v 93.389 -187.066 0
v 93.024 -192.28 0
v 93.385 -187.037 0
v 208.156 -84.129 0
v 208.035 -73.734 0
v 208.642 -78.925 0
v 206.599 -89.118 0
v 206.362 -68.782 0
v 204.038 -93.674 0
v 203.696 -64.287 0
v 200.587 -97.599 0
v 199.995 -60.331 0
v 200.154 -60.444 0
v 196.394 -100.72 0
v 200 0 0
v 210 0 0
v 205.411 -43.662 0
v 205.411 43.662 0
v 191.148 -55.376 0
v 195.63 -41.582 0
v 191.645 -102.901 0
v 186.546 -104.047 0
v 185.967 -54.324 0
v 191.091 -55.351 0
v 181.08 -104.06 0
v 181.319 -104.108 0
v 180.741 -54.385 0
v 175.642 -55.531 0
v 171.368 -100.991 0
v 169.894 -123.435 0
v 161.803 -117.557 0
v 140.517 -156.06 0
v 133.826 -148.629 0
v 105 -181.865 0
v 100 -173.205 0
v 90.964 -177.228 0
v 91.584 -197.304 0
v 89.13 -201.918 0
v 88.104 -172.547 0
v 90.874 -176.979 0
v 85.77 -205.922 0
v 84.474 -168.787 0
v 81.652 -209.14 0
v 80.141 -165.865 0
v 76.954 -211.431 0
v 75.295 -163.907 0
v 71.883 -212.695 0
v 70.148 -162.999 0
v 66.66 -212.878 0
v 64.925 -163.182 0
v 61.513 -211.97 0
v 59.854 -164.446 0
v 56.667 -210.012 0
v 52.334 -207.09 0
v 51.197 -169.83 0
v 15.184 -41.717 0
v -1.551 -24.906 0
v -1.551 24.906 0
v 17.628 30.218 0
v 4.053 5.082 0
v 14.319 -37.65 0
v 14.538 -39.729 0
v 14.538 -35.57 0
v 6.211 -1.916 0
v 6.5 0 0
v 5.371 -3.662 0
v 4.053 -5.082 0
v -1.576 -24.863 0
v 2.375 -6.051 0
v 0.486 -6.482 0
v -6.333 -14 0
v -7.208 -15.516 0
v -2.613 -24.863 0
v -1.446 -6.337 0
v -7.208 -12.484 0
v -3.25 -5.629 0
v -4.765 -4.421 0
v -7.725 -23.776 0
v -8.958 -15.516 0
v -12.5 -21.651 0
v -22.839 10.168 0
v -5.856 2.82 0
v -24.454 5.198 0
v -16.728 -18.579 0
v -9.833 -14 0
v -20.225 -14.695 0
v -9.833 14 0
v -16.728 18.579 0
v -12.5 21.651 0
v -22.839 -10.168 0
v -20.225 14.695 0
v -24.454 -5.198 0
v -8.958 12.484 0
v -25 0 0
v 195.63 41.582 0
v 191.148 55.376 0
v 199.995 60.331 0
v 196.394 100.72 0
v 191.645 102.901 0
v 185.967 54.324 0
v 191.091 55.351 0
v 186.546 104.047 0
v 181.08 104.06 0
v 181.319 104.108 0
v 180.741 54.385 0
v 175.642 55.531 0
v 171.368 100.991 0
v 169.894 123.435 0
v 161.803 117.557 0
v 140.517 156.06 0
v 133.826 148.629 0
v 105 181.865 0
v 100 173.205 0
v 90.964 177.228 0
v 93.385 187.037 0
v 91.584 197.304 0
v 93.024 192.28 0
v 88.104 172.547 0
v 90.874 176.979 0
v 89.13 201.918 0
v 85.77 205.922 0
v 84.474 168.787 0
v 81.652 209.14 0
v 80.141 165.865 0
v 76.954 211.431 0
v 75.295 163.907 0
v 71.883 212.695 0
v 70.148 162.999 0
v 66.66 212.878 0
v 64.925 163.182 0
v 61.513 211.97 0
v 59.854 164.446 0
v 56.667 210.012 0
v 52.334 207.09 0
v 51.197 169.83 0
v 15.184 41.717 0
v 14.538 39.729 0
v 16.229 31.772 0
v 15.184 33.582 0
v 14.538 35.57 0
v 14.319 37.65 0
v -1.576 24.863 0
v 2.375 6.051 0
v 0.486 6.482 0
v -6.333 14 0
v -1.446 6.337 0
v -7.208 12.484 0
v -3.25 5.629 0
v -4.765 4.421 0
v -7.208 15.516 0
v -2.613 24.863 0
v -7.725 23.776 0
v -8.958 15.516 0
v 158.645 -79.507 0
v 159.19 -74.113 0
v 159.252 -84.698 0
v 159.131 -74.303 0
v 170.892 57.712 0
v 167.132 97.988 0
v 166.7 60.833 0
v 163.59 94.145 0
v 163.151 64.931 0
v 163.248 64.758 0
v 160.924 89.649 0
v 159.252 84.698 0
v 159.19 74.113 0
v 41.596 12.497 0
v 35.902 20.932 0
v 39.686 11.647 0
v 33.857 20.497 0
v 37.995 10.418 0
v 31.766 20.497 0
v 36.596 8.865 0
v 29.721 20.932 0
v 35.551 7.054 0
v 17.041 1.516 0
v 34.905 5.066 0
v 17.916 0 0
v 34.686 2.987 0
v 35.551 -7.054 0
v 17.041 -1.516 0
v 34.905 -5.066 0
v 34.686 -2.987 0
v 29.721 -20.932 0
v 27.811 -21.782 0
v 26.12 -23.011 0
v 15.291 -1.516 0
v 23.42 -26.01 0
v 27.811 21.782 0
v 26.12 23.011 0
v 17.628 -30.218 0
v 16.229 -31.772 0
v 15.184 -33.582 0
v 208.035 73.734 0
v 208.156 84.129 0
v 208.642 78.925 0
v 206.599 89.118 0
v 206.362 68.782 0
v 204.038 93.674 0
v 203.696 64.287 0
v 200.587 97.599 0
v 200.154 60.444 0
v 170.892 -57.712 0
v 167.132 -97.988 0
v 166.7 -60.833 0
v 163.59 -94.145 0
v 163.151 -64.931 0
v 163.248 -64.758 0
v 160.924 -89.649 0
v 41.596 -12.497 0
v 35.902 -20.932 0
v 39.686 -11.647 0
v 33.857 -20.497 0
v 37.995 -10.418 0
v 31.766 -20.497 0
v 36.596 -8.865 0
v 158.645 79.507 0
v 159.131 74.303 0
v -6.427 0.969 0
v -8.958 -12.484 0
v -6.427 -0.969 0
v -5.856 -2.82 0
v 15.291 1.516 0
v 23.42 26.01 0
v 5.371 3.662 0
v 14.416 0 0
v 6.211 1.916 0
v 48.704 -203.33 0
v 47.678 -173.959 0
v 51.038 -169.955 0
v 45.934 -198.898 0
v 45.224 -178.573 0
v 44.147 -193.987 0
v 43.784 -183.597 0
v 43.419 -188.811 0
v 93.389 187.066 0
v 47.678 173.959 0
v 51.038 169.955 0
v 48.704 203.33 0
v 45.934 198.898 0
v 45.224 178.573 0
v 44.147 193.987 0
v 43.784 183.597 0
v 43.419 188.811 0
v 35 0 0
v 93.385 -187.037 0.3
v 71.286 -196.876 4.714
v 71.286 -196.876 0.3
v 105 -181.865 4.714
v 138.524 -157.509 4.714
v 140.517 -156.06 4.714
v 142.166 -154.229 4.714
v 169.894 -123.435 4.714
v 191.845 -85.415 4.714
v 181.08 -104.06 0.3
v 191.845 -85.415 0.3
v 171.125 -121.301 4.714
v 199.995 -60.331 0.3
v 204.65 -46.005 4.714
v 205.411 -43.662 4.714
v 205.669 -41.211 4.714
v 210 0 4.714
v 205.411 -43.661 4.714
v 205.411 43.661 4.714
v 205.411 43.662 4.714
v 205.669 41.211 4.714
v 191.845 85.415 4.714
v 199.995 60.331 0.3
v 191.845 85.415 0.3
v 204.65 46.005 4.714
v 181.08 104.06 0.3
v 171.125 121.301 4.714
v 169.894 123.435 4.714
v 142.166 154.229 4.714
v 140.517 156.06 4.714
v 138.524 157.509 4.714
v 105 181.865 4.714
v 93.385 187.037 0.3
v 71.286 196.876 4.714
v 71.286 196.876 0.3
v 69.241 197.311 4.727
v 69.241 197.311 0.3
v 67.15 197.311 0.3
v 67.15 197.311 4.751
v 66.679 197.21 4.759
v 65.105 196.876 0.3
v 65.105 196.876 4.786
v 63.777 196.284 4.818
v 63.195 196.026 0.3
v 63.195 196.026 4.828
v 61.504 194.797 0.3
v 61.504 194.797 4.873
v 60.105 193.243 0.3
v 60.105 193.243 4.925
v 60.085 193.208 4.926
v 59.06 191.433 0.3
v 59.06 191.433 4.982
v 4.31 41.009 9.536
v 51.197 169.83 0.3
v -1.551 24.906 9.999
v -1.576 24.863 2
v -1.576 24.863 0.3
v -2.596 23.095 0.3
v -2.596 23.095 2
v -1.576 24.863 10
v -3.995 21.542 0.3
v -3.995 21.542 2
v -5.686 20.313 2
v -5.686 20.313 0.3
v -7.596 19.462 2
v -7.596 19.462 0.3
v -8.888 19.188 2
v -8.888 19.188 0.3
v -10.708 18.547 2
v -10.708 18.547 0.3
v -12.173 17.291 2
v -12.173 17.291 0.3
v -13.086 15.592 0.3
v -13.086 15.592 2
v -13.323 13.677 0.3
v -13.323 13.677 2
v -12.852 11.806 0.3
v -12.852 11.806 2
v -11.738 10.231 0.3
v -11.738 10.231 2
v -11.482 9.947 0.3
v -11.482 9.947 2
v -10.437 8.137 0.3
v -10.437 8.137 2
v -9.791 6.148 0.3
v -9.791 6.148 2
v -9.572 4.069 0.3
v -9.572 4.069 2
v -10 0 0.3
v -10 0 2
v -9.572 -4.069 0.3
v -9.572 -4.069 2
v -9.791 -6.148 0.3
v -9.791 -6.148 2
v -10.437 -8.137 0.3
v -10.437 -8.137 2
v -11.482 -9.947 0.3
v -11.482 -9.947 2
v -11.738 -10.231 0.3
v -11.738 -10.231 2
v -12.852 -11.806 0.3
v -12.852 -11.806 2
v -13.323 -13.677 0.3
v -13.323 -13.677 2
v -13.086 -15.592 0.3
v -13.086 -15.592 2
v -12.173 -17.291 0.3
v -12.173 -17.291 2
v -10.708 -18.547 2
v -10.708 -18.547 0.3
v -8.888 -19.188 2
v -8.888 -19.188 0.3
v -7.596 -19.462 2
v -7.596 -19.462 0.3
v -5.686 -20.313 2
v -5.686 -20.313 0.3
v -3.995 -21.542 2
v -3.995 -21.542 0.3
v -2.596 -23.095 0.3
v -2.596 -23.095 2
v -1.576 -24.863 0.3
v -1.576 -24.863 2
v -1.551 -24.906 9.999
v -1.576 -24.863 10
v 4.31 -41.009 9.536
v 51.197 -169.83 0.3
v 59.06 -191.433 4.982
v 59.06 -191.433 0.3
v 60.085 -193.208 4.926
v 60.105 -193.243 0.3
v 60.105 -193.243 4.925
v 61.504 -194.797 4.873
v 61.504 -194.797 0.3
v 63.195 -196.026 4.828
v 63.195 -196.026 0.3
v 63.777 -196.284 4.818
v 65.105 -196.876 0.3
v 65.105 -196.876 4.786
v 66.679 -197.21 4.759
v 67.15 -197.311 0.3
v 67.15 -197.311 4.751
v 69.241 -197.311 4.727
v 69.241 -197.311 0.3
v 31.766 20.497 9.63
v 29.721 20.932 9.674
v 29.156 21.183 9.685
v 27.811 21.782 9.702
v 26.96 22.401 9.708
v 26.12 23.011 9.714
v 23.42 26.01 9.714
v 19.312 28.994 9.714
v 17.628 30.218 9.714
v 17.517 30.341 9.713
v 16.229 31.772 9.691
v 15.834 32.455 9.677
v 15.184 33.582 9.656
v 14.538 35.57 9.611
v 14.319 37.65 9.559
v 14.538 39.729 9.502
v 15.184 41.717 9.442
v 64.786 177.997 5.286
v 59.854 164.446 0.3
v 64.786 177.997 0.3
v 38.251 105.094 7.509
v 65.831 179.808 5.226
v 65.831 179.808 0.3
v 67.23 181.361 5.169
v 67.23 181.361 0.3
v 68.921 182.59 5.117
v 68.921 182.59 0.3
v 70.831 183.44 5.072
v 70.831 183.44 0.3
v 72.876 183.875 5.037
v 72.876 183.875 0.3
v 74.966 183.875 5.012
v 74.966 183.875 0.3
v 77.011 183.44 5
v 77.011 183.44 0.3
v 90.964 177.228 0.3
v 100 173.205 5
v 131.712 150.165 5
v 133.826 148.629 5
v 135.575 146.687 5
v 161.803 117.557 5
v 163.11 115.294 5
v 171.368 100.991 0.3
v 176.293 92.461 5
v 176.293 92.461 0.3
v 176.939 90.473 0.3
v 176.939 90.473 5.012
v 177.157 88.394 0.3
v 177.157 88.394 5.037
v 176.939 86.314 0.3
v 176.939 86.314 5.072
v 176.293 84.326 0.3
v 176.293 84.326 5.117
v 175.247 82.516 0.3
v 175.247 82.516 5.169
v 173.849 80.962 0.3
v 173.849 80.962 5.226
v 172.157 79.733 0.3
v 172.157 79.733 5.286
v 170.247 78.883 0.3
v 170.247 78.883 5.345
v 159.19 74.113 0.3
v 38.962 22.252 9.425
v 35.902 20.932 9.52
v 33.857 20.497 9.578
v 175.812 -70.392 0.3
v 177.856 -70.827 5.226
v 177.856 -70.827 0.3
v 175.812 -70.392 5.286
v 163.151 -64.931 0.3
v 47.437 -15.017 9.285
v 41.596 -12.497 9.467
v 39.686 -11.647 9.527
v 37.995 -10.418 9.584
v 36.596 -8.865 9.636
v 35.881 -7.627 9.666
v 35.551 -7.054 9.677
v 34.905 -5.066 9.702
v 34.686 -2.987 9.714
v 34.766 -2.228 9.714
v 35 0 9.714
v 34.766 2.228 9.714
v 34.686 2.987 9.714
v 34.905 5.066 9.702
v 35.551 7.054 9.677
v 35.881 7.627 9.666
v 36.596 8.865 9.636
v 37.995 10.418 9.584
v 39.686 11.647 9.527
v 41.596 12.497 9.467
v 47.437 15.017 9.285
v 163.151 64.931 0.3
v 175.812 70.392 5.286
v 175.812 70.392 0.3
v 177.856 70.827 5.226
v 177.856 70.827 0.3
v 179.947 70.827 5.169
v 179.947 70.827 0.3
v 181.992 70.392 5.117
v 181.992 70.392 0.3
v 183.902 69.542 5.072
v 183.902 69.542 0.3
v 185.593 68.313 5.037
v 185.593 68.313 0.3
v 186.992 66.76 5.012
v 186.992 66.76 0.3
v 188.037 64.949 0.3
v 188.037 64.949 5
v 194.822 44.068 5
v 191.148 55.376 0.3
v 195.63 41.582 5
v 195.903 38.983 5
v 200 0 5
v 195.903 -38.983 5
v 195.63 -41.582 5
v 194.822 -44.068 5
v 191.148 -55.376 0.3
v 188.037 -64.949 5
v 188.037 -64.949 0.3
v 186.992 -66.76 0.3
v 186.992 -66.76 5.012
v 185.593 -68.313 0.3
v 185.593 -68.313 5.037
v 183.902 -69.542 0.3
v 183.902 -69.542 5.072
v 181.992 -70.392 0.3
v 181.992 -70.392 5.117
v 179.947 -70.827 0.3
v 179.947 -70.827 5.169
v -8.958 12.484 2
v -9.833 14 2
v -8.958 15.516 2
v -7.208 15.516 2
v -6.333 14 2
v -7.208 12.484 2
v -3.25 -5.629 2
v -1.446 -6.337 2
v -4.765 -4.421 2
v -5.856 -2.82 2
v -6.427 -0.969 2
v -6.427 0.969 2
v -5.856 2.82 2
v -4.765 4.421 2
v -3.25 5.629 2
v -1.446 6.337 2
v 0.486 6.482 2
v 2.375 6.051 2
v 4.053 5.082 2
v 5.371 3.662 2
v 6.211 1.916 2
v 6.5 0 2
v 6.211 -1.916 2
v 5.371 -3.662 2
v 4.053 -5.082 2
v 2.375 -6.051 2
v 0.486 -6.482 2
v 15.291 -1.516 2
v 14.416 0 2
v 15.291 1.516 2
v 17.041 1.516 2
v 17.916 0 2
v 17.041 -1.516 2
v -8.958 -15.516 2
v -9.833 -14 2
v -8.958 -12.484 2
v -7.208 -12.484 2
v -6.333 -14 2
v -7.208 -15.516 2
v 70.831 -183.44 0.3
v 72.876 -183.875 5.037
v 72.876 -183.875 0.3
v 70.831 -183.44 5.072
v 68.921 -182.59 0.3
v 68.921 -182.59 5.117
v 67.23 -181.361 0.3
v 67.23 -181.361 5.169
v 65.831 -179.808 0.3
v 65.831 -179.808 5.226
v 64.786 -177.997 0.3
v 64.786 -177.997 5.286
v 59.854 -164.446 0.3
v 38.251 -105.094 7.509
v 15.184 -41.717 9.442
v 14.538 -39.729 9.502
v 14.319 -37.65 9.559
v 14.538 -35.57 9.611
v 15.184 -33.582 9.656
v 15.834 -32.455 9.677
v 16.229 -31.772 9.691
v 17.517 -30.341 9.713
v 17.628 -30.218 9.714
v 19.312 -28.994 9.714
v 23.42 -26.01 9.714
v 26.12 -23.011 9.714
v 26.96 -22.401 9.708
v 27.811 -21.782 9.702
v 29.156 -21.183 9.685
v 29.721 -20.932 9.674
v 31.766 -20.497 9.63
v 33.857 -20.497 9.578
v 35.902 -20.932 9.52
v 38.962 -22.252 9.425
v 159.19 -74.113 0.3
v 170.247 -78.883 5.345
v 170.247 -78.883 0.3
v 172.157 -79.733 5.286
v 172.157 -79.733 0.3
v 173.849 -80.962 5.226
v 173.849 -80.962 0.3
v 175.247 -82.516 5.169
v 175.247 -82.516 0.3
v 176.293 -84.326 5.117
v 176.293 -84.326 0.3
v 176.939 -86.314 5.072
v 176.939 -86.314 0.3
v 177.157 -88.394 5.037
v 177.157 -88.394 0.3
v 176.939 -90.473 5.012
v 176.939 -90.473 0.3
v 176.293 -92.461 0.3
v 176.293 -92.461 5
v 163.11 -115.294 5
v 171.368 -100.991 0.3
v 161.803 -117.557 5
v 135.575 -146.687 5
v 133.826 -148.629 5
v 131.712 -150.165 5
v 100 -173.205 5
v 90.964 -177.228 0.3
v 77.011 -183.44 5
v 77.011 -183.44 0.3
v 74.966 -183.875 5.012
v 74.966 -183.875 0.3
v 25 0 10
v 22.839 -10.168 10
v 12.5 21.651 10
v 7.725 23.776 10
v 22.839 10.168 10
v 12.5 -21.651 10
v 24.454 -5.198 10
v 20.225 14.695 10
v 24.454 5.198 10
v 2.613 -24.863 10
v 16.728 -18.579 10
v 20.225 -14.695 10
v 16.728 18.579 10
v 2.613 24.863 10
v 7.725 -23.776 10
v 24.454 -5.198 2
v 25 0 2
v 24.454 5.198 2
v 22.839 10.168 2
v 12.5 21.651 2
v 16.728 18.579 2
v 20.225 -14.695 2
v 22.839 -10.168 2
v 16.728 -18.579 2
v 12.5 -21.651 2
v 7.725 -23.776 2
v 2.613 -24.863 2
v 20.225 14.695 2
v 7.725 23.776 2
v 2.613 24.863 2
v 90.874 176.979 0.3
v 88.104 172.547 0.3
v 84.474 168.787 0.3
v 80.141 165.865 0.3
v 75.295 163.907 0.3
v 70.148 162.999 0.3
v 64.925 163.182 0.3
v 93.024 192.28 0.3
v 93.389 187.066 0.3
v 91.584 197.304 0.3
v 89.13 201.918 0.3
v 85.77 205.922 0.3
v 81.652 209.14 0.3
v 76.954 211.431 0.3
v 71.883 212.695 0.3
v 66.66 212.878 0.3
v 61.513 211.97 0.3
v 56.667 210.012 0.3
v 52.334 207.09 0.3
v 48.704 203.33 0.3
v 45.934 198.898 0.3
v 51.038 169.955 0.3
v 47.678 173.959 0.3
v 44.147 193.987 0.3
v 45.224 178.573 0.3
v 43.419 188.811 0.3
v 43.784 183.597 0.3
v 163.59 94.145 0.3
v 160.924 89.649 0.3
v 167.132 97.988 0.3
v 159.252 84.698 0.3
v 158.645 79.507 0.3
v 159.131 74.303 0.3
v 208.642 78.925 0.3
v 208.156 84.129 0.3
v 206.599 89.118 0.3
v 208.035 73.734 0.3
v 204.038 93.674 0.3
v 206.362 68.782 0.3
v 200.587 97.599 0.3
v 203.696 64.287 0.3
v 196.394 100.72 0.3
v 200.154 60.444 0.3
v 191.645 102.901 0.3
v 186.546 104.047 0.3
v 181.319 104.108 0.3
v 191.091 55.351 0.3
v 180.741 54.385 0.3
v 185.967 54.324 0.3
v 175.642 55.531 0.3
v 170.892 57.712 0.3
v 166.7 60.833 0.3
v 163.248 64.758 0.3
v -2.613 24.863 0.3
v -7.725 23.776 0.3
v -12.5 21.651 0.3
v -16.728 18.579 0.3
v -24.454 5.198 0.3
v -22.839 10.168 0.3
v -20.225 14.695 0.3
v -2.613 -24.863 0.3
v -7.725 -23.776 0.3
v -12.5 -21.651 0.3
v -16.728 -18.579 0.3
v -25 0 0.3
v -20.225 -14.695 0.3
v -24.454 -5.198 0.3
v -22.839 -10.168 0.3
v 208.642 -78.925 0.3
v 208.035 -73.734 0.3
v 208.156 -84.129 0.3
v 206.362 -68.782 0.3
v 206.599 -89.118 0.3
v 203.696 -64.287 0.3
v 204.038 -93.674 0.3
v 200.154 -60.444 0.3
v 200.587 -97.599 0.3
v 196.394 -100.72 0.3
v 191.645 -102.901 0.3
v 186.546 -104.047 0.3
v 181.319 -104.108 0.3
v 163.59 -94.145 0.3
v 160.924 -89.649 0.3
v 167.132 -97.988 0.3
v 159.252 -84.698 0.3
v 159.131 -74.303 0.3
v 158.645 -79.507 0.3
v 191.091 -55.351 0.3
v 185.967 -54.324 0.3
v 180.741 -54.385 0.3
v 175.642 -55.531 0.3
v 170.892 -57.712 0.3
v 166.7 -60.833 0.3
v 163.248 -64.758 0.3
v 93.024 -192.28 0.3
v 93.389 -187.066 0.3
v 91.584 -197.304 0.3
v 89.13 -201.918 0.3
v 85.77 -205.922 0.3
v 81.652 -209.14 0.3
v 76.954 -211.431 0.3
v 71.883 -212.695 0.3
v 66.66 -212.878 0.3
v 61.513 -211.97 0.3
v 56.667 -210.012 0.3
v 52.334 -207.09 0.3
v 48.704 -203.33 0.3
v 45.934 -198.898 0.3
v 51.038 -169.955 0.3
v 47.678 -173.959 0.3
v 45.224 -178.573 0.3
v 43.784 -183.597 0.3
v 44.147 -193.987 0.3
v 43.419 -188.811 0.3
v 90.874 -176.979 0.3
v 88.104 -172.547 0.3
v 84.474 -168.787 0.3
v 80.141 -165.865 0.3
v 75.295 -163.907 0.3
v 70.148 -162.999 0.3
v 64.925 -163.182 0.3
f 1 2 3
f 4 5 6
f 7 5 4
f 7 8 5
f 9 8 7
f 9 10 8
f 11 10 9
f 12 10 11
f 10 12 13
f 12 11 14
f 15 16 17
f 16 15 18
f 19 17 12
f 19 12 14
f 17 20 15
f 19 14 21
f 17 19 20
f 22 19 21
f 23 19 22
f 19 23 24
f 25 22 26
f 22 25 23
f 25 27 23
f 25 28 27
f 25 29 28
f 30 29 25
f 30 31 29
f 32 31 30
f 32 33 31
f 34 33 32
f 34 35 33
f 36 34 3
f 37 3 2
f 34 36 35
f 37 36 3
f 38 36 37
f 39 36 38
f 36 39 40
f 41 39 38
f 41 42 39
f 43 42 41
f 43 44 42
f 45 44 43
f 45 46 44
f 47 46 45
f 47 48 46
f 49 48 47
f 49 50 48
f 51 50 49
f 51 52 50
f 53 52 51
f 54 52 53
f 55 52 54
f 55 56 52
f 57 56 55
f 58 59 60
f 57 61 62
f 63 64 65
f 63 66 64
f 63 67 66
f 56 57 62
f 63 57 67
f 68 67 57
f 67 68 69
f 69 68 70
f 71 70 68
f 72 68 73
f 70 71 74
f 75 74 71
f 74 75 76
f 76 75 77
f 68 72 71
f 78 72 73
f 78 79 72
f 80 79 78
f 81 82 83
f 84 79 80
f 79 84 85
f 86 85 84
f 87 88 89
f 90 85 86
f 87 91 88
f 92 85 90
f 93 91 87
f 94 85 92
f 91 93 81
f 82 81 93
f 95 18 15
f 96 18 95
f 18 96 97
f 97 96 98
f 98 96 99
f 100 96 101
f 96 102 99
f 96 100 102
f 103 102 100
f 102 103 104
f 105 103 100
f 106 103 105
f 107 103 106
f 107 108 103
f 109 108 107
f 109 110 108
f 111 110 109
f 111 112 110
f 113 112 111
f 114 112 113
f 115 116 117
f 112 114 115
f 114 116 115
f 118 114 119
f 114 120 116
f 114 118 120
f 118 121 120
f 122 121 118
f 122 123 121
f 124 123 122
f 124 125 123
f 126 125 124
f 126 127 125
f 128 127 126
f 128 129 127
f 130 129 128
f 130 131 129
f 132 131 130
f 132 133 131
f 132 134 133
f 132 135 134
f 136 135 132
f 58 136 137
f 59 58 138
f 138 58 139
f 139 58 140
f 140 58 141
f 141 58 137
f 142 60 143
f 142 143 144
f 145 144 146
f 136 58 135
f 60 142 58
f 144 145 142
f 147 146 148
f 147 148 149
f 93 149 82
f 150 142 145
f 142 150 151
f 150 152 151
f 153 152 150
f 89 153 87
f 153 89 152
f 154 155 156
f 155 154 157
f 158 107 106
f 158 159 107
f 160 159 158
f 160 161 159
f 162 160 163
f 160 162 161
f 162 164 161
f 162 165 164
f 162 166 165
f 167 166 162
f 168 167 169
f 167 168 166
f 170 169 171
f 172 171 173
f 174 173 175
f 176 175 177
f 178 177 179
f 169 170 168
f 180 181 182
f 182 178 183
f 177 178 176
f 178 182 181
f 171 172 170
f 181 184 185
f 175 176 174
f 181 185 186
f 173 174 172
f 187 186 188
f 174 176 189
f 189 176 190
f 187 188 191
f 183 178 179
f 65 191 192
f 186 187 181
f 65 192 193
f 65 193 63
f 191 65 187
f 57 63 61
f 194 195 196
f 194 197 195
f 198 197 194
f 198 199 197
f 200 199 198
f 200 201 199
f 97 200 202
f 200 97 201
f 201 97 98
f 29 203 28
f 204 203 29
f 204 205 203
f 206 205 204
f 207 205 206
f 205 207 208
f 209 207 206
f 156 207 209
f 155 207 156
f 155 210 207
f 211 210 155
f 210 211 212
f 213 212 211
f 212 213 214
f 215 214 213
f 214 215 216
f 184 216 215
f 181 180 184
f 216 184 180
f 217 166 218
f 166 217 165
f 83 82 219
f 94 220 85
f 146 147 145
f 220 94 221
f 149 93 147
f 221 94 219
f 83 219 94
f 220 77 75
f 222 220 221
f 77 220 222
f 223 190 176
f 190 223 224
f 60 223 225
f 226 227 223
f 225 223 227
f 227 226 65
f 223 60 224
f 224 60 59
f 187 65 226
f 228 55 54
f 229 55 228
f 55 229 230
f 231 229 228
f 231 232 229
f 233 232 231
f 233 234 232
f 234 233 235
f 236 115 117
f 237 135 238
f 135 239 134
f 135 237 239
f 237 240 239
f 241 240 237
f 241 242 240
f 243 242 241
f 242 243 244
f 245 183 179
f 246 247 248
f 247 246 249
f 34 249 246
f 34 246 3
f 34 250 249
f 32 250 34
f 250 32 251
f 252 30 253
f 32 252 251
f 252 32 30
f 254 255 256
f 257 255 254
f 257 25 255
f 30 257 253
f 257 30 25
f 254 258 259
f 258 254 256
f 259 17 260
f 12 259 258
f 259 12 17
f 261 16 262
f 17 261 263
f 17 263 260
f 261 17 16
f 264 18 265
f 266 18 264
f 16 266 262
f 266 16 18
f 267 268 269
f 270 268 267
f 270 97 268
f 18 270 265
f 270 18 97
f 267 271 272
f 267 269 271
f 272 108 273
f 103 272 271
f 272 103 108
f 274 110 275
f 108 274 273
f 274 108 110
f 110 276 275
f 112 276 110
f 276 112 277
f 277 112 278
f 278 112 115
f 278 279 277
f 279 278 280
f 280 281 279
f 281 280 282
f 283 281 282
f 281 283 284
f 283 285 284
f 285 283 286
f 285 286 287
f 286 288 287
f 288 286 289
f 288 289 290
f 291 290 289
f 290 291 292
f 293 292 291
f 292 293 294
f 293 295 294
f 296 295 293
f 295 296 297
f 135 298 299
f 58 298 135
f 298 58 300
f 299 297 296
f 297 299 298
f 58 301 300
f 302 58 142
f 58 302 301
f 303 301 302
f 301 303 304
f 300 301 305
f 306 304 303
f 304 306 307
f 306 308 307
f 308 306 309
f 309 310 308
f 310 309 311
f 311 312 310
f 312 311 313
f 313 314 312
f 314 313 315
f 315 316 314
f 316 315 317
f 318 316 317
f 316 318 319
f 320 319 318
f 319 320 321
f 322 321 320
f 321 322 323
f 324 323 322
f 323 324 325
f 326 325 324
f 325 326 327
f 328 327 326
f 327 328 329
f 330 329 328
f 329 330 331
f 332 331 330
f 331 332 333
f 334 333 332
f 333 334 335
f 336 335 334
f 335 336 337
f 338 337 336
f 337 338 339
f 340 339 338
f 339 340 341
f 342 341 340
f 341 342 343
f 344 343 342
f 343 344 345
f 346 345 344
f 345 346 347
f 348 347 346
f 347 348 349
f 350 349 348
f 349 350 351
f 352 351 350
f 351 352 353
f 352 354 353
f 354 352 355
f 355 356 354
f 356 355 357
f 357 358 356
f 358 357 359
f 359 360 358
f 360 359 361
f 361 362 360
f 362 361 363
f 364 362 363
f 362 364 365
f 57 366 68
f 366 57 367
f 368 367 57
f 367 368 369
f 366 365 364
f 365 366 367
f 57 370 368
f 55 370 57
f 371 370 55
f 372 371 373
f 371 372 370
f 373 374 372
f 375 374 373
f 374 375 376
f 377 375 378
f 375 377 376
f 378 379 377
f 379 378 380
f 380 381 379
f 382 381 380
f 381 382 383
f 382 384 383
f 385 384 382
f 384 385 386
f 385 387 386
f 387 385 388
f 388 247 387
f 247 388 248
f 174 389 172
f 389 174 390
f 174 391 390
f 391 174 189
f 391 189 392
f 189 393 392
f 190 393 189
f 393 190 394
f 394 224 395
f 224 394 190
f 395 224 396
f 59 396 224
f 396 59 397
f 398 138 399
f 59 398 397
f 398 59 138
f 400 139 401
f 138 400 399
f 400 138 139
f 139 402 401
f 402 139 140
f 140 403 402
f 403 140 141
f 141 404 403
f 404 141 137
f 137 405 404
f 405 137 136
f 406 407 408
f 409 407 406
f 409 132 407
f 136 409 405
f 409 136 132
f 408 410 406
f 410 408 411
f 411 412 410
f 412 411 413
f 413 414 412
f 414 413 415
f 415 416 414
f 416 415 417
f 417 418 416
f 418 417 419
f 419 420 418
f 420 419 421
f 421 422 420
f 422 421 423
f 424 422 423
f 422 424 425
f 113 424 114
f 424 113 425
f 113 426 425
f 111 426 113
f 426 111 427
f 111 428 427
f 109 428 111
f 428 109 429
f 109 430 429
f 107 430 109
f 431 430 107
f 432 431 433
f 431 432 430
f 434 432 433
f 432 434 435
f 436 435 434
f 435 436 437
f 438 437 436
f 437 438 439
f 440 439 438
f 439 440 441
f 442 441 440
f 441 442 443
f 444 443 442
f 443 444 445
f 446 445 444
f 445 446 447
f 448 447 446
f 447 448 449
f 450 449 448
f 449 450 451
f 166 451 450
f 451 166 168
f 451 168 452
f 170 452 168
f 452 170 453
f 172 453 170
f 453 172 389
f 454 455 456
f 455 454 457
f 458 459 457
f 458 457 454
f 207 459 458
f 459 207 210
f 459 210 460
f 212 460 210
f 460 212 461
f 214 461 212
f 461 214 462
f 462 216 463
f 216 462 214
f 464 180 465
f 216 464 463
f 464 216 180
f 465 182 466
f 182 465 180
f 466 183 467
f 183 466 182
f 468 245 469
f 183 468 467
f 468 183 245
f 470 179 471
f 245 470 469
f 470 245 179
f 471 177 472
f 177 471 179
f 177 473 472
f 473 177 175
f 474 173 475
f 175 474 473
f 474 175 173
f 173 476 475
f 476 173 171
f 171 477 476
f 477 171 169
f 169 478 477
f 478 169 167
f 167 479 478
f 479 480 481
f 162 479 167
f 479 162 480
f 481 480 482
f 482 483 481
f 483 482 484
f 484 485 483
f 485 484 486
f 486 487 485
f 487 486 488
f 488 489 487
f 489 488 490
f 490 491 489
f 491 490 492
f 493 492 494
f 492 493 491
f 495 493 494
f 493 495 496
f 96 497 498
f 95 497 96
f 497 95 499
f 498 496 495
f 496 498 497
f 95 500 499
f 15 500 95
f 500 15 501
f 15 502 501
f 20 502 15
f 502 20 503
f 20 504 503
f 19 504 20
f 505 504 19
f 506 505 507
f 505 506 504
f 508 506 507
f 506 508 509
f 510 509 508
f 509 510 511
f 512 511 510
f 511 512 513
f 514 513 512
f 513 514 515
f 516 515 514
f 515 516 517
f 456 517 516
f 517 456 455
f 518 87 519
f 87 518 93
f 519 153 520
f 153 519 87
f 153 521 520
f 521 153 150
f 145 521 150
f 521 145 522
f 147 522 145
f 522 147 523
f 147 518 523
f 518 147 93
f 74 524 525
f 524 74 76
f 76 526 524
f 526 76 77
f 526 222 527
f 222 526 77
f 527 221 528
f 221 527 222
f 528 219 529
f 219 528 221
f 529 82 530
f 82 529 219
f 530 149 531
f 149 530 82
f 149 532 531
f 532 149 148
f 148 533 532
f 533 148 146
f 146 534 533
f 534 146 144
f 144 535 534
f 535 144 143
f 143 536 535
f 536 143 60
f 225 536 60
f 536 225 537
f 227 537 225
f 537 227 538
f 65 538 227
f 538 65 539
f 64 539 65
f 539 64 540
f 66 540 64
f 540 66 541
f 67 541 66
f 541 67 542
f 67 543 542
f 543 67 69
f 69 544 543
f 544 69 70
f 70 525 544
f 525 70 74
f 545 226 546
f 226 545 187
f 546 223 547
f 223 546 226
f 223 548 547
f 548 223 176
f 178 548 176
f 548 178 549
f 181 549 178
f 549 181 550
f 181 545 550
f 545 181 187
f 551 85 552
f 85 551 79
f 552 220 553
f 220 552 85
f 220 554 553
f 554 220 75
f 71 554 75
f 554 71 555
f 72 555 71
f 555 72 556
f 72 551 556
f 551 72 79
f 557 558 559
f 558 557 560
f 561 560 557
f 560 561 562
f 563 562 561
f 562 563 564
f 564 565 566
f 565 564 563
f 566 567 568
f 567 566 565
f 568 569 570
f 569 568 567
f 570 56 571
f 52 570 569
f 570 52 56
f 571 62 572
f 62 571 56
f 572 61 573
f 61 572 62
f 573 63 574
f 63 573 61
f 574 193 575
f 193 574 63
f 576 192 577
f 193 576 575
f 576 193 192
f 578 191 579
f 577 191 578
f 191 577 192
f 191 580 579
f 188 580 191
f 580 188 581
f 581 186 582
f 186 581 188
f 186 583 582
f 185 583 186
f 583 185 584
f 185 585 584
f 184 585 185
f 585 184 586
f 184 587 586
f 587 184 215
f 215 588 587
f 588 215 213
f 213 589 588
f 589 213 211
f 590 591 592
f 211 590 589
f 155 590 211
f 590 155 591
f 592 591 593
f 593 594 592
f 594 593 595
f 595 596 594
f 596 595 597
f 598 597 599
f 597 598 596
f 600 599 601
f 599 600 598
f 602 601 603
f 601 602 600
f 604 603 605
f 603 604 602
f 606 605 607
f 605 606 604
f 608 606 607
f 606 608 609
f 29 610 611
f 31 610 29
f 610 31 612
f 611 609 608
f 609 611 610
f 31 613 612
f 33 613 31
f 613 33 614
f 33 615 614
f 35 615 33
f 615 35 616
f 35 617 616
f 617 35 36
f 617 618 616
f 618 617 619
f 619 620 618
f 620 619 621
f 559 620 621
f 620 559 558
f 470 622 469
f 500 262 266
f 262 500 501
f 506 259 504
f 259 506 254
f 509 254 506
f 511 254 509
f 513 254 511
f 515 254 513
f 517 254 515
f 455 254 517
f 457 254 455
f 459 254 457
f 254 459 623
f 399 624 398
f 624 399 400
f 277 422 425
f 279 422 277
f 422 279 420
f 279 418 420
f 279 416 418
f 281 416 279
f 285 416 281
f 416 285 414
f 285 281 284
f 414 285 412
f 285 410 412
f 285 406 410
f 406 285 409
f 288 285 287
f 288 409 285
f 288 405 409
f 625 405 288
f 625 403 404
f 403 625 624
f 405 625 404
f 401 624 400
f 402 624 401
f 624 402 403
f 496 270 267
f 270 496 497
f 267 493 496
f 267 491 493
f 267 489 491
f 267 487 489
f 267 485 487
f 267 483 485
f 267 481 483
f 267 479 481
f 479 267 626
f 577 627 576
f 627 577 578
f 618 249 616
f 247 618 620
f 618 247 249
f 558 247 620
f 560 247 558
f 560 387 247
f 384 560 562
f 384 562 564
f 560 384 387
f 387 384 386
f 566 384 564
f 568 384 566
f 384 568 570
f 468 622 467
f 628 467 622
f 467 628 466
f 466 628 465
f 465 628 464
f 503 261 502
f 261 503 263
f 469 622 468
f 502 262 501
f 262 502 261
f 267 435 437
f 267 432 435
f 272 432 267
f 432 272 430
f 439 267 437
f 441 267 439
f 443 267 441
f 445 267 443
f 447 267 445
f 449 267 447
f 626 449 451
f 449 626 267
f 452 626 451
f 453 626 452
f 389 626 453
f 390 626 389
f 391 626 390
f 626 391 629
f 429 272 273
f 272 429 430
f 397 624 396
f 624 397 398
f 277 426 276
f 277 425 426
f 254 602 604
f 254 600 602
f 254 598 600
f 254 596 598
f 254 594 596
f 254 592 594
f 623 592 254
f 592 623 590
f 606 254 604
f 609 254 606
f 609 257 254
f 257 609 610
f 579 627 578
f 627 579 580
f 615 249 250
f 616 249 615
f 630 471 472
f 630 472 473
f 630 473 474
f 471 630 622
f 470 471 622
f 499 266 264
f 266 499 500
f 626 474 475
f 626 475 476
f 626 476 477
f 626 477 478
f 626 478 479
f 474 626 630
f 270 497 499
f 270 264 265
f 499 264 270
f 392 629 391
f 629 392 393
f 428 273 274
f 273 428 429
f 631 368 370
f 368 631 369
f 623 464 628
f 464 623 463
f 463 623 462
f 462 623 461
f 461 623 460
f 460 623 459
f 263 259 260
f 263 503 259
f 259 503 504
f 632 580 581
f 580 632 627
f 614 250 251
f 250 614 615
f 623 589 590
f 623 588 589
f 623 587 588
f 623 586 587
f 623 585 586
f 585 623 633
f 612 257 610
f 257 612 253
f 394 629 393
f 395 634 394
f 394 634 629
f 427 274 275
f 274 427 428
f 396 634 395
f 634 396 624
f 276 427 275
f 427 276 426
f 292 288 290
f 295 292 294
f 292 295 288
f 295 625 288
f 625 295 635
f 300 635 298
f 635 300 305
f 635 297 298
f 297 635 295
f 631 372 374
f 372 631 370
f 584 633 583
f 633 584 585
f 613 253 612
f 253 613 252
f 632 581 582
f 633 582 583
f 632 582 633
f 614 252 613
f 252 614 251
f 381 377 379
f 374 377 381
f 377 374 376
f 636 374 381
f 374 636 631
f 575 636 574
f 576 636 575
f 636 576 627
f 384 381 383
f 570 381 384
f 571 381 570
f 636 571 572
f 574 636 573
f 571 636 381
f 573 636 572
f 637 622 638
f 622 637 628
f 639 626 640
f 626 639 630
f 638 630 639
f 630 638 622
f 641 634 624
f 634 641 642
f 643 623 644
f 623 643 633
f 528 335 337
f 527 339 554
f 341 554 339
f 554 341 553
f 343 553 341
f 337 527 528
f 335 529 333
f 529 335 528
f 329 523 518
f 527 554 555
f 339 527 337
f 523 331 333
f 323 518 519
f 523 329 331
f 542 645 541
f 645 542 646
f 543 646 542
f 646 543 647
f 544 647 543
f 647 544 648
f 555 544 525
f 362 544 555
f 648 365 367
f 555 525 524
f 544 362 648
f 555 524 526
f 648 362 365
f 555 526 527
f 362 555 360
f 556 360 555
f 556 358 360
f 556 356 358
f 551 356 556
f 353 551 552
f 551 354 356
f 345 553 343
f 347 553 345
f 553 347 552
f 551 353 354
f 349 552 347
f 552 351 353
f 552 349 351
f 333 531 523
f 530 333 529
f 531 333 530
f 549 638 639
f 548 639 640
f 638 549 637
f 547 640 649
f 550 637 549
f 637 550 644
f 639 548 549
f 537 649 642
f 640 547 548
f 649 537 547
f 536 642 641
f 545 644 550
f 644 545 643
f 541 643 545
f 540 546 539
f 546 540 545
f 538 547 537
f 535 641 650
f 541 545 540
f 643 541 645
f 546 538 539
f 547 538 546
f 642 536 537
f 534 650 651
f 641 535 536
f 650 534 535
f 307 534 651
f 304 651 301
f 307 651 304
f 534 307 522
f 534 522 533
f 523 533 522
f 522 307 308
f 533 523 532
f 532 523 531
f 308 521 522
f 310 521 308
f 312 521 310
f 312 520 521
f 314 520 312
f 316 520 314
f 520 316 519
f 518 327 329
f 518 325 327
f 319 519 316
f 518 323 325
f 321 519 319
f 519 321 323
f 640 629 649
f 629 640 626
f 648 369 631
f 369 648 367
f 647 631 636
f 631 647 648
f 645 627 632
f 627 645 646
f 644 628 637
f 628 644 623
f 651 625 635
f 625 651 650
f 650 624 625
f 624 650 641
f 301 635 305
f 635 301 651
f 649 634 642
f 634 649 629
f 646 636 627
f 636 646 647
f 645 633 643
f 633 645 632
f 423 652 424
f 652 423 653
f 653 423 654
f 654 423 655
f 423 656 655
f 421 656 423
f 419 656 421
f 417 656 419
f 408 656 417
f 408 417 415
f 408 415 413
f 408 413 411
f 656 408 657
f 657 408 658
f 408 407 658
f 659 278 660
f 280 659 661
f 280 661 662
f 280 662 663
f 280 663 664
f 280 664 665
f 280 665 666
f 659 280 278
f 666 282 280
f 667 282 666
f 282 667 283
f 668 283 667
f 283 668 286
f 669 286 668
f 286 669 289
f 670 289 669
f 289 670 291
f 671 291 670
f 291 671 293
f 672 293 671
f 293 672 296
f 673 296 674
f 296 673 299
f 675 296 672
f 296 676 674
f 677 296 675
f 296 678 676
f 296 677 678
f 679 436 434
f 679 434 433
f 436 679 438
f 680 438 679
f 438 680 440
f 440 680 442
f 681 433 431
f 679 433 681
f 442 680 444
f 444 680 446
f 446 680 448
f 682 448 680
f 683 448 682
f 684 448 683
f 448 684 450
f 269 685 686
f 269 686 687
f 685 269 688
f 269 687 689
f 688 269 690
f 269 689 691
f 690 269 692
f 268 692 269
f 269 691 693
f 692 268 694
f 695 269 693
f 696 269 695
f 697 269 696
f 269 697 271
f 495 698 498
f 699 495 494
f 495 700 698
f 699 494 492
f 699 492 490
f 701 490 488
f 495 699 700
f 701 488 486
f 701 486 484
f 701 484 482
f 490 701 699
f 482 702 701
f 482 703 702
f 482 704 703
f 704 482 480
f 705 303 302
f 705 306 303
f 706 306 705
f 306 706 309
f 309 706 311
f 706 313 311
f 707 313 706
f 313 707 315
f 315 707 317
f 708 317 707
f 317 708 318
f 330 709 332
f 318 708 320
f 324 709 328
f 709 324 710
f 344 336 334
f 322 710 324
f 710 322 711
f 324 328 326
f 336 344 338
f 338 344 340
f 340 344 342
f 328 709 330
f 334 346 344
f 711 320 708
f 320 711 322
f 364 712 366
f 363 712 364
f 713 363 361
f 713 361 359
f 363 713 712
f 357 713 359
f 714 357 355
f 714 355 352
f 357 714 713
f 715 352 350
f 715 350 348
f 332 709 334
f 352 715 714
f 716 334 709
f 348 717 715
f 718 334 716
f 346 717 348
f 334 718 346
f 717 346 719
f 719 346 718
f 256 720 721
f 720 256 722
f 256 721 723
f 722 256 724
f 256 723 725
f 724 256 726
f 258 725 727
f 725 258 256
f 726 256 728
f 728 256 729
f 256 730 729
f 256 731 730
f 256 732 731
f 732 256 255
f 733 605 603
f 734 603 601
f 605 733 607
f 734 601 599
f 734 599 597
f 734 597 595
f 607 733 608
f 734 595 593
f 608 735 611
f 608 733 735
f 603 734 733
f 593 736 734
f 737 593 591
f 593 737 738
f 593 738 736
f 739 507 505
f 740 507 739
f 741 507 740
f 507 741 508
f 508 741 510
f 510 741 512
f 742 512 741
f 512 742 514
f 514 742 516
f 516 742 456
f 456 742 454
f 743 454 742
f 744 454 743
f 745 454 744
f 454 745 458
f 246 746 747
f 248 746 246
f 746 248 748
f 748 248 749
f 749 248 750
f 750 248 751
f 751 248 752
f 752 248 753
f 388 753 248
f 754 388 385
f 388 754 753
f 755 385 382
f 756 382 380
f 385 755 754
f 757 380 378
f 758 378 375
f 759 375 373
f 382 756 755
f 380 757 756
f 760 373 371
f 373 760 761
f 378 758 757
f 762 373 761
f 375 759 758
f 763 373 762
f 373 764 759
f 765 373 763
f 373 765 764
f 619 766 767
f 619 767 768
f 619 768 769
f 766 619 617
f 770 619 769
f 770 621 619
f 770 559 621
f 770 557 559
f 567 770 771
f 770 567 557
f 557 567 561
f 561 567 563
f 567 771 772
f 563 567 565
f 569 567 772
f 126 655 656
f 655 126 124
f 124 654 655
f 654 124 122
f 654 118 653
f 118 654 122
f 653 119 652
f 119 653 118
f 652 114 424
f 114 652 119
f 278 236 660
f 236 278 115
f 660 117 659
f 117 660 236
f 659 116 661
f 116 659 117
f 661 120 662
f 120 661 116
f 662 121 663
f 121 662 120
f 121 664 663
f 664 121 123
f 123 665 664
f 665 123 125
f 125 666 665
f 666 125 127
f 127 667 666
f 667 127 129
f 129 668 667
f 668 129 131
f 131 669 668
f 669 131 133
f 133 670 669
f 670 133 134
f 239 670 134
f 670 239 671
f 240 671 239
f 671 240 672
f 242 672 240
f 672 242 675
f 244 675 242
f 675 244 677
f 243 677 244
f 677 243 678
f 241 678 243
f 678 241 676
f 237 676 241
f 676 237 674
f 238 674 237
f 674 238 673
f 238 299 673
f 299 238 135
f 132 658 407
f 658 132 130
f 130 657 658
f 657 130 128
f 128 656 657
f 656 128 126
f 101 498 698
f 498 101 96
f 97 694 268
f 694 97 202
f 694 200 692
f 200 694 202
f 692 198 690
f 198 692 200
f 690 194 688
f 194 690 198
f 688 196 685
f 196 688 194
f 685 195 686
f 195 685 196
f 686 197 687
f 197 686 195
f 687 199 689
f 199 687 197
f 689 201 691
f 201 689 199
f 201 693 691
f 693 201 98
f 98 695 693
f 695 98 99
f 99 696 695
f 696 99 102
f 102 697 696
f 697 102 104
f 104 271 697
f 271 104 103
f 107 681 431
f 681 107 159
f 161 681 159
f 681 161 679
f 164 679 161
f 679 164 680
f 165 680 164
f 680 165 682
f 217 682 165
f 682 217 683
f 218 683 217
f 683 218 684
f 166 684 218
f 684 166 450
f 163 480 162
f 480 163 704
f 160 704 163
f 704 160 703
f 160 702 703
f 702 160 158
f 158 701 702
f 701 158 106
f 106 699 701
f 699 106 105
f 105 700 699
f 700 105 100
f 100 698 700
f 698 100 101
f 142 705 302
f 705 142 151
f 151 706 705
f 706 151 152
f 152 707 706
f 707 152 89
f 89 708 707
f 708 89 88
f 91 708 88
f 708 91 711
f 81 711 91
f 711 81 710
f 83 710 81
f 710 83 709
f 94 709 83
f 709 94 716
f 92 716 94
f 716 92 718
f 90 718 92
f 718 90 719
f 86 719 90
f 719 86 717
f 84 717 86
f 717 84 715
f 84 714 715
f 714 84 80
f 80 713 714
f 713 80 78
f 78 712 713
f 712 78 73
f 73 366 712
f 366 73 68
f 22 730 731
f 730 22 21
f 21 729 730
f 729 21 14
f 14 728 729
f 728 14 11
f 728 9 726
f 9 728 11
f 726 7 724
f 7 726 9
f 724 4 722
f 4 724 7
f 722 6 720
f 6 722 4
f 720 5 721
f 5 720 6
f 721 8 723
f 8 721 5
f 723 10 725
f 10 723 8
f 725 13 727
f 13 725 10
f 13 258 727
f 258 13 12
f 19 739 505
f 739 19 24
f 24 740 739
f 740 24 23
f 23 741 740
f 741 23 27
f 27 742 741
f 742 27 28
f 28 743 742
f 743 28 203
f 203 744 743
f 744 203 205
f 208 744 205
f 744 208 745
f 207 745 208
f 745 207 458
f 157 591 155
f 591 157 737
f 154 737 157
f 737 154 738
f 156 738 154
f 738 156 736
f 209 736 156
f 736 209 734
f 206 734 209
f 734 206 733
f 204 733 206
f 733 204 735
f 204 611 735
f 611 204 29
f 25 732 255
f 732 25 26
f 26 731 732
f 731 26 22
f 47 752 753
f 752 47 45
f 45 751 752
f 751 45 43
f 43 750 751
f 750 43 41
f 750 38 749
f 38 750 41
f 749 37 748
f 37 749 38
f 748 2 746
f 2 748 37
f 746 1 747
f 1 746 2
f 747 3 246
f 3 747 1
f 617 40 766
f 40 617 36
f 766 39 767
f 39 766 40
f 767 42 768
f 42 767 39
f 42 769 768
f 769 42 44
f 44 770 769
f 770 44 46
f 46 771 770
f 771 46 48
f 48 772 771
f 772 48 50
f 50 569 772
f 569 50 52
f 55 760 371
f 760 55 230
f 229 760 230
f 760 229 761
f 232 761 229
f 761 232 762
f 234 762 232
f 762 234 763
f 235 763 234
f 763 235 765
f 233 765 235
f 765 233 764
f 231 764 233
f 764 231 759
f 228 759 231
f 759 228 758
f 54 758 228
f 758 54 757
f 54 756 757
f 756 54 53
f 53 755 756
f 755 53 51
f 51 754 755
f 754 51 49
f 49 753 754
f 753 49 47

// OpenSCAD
// Which one would you like to see?
part = "3d"; // [propguard_3d:3D version good for 3D printing, 2d:produces 2d stl version, route: produces 2d dxf for routing]

// radius of guard
r = 200; 

// width of supports
w = 10; 

// thickness of guard
t = 10; 

// thickness of lillypad for adhesion, used in 3d version
t_lillypad = 0.3;

// radius of lillypad for adhesion, used in 3d version
r_lillypad = 25;

// outer thickness of guard, used in 3d version
to = 5; 

// start angle of guard
angle_start = -70;

// stop angle of guard
angle_stop = 70; 

// number of supports inside guard
n_supports = 2; 

// diameter of motor
d_motor = 50;

// thickness of motor mount
t_motor = 2;

// diameter of motor screws, helpful to make slightly larger than actual screw
d_screw = 3.5;

// diameter of motor shaft
d_shaft = 13;

// triangular screw separation, setup for tarot motors
screw_sep = 28;

////////////////////////////////////////////////////////////////

module outset(r) {
    minkowski() {
        circle(r=r);
        children();
    }
}

module inverse() {
	difference() {
		square(1e5,center=true);
		children();
	}
}

module fillet(r=1) {
	inset(r=r) render() outset(r=r) children();
}

module rounding(r=1) {
	outset(r=r) inset(r=r) children();
}

module inset(r) {
    inverse() outset(r) inverse() children();
}

module pie_slice(r, start_angle, end_angle) {
    R = r * sqrt(2) + 1;
    a0 = (4 * start_angle + 0 * end_angle) / 4;
    a1 = (3 * start_angle + 1 * end_angle) / 4;
    a2 = (2 * start_angle + 2 * end_angle) / 4;
    a3 = (1 * start_angle + 3 * end_angle) / 4;
    a4 = (0 * start_angle + 4 * end_angle) / 4;
    if(end_angle > start_angle)
        intersection() {
        circle(r);
        polygon([
            [0,0],
            [R * cos(a0), R * sin(a0)],
            [R * cos(a1), R * sin(a1)],
            [R * cos(a2), R * sin(a2)],
            [R * cos(a3), R * sin(a3)],
            [R * cos(a4), R * sin(a4)],
            [0,0]
       ]);
    }
}

module guard_shape(r, w, angle_start, angle_stop, n_supports, d_motor, mount_r) {
    render() {
        pie_slice(mount_r, angle_start, angle_stop);
        difference() {
            outset(r=w) pie_slice(r, angle_start, angle_stop);
            pie_slice(r, angle_start, angle_stop);
        }
        delta_angle = (angle_stop - angle_start) / (n_supports + 1);
        for (n = [1: 1: n_supports]) {
            a = angle_start + n*delta_angle;
            rotate(a) translate([r/2, 0]) square([r, w], center=true);
        }
    }
}

module drill_holes(d, sep) {
    x = sep / 2 / cos(30);
    for (angle=[0:120:360]) {
        rotate(angle) translate([x, 0]) circle(d=d);
    }
}

module guard_2d(r, w, t, angle_start, angle_stop, n_supports, d_motor, d_shaft, mount_r=0) {
    if (mount_r == 0) {
        mount_r = d_motor/2;
    }
    difference() {
        fillet(r=w) union() {
            guard_shape(r=r, w=w, angle_start=angle_start, angle_stop=angle_stop,
                n_supports=n_supports, d_motor=d_motor, mount_r=mount_r);
            drill_holes(d=d_screw*3, sep=screw_sep);
        }
        drill_holes(d=d_screw, sep=screw_sep);
        circle(d=d_shaft);
    }
}

module motor() {
    translate([0, 0, t_motor]) color("blue", 0.1) linear_extrude(20) circle(d=d_motor);
}

module guard_3d(r, w, t, angle_start, angle_stop, n_supports, d_motor, d_shaft, to) {
    ro = r;
    ri = d_motor/2;
    ti = t;
    r2 = (ro*ti - ri*to)/(ti - to);
    mount_r = d_motor/2 + w;
    d_shaft = d_shaft;
    render() difference() {
        intersection() {
            linear_extrude(t) guard_2d(r=r, w=w, t=t, angle_start=angle_start,
                angle_stop=angle_stop, n_supports=n_supports, d_motor=d_motor,
                mount_r=mount_r, d_shaft=d_shaft);
            cylinder(h=t, r1=r2, r2=d_motor/2);
        }
        motor();
    }
}

module lilypads(t, r, r_arm) {
    linear_extrude(t) {
        difference() {
            union() {
                delta_angle = (angle_stop - angle_start) / (n_supports + 1);
                circle(r_lillypad, center=true);
                for (n = [0: 1: n_supports + 1]) {
                    a = angle_start + n*delta_angle;
                    rotate(a) translate([r_arm, 0]) circle(r_lillypad, center=true);
                }
            }
            drill_holes(d=d_screw, sep=screw_sep);
            circle(d=d_shaft);
        }
    }
}

if (part == "2d") {
    linear_extrude(t_motor) guard_2d(r=r, w=w, t=t_motor,
        angle_start=angle_start, angle_stop=angle_stop, n_supports=n_supports, d_motor=d_motor, d_shaft=d_shaft);
} else if (part == "route") {
    guard_2d(r=r, w=w, t=t_motor,
            angle_start=angle_start, angle_stop=angle_stop, n_supports=n_supports, d_motor=d_motor, d_shaft=d_shaft);
} else if (part == "3d") {
    guard_3d(r=r, w=w, t=t, angle_start=angle_start, angle_stop=angle_stop, n_supports=n_supports,
        d_motor=d_motor, d_shaft=d_shaft, to=to);
    lilypads(t=t_lillypad, r=r_lillypad, r_arm=r);
}
